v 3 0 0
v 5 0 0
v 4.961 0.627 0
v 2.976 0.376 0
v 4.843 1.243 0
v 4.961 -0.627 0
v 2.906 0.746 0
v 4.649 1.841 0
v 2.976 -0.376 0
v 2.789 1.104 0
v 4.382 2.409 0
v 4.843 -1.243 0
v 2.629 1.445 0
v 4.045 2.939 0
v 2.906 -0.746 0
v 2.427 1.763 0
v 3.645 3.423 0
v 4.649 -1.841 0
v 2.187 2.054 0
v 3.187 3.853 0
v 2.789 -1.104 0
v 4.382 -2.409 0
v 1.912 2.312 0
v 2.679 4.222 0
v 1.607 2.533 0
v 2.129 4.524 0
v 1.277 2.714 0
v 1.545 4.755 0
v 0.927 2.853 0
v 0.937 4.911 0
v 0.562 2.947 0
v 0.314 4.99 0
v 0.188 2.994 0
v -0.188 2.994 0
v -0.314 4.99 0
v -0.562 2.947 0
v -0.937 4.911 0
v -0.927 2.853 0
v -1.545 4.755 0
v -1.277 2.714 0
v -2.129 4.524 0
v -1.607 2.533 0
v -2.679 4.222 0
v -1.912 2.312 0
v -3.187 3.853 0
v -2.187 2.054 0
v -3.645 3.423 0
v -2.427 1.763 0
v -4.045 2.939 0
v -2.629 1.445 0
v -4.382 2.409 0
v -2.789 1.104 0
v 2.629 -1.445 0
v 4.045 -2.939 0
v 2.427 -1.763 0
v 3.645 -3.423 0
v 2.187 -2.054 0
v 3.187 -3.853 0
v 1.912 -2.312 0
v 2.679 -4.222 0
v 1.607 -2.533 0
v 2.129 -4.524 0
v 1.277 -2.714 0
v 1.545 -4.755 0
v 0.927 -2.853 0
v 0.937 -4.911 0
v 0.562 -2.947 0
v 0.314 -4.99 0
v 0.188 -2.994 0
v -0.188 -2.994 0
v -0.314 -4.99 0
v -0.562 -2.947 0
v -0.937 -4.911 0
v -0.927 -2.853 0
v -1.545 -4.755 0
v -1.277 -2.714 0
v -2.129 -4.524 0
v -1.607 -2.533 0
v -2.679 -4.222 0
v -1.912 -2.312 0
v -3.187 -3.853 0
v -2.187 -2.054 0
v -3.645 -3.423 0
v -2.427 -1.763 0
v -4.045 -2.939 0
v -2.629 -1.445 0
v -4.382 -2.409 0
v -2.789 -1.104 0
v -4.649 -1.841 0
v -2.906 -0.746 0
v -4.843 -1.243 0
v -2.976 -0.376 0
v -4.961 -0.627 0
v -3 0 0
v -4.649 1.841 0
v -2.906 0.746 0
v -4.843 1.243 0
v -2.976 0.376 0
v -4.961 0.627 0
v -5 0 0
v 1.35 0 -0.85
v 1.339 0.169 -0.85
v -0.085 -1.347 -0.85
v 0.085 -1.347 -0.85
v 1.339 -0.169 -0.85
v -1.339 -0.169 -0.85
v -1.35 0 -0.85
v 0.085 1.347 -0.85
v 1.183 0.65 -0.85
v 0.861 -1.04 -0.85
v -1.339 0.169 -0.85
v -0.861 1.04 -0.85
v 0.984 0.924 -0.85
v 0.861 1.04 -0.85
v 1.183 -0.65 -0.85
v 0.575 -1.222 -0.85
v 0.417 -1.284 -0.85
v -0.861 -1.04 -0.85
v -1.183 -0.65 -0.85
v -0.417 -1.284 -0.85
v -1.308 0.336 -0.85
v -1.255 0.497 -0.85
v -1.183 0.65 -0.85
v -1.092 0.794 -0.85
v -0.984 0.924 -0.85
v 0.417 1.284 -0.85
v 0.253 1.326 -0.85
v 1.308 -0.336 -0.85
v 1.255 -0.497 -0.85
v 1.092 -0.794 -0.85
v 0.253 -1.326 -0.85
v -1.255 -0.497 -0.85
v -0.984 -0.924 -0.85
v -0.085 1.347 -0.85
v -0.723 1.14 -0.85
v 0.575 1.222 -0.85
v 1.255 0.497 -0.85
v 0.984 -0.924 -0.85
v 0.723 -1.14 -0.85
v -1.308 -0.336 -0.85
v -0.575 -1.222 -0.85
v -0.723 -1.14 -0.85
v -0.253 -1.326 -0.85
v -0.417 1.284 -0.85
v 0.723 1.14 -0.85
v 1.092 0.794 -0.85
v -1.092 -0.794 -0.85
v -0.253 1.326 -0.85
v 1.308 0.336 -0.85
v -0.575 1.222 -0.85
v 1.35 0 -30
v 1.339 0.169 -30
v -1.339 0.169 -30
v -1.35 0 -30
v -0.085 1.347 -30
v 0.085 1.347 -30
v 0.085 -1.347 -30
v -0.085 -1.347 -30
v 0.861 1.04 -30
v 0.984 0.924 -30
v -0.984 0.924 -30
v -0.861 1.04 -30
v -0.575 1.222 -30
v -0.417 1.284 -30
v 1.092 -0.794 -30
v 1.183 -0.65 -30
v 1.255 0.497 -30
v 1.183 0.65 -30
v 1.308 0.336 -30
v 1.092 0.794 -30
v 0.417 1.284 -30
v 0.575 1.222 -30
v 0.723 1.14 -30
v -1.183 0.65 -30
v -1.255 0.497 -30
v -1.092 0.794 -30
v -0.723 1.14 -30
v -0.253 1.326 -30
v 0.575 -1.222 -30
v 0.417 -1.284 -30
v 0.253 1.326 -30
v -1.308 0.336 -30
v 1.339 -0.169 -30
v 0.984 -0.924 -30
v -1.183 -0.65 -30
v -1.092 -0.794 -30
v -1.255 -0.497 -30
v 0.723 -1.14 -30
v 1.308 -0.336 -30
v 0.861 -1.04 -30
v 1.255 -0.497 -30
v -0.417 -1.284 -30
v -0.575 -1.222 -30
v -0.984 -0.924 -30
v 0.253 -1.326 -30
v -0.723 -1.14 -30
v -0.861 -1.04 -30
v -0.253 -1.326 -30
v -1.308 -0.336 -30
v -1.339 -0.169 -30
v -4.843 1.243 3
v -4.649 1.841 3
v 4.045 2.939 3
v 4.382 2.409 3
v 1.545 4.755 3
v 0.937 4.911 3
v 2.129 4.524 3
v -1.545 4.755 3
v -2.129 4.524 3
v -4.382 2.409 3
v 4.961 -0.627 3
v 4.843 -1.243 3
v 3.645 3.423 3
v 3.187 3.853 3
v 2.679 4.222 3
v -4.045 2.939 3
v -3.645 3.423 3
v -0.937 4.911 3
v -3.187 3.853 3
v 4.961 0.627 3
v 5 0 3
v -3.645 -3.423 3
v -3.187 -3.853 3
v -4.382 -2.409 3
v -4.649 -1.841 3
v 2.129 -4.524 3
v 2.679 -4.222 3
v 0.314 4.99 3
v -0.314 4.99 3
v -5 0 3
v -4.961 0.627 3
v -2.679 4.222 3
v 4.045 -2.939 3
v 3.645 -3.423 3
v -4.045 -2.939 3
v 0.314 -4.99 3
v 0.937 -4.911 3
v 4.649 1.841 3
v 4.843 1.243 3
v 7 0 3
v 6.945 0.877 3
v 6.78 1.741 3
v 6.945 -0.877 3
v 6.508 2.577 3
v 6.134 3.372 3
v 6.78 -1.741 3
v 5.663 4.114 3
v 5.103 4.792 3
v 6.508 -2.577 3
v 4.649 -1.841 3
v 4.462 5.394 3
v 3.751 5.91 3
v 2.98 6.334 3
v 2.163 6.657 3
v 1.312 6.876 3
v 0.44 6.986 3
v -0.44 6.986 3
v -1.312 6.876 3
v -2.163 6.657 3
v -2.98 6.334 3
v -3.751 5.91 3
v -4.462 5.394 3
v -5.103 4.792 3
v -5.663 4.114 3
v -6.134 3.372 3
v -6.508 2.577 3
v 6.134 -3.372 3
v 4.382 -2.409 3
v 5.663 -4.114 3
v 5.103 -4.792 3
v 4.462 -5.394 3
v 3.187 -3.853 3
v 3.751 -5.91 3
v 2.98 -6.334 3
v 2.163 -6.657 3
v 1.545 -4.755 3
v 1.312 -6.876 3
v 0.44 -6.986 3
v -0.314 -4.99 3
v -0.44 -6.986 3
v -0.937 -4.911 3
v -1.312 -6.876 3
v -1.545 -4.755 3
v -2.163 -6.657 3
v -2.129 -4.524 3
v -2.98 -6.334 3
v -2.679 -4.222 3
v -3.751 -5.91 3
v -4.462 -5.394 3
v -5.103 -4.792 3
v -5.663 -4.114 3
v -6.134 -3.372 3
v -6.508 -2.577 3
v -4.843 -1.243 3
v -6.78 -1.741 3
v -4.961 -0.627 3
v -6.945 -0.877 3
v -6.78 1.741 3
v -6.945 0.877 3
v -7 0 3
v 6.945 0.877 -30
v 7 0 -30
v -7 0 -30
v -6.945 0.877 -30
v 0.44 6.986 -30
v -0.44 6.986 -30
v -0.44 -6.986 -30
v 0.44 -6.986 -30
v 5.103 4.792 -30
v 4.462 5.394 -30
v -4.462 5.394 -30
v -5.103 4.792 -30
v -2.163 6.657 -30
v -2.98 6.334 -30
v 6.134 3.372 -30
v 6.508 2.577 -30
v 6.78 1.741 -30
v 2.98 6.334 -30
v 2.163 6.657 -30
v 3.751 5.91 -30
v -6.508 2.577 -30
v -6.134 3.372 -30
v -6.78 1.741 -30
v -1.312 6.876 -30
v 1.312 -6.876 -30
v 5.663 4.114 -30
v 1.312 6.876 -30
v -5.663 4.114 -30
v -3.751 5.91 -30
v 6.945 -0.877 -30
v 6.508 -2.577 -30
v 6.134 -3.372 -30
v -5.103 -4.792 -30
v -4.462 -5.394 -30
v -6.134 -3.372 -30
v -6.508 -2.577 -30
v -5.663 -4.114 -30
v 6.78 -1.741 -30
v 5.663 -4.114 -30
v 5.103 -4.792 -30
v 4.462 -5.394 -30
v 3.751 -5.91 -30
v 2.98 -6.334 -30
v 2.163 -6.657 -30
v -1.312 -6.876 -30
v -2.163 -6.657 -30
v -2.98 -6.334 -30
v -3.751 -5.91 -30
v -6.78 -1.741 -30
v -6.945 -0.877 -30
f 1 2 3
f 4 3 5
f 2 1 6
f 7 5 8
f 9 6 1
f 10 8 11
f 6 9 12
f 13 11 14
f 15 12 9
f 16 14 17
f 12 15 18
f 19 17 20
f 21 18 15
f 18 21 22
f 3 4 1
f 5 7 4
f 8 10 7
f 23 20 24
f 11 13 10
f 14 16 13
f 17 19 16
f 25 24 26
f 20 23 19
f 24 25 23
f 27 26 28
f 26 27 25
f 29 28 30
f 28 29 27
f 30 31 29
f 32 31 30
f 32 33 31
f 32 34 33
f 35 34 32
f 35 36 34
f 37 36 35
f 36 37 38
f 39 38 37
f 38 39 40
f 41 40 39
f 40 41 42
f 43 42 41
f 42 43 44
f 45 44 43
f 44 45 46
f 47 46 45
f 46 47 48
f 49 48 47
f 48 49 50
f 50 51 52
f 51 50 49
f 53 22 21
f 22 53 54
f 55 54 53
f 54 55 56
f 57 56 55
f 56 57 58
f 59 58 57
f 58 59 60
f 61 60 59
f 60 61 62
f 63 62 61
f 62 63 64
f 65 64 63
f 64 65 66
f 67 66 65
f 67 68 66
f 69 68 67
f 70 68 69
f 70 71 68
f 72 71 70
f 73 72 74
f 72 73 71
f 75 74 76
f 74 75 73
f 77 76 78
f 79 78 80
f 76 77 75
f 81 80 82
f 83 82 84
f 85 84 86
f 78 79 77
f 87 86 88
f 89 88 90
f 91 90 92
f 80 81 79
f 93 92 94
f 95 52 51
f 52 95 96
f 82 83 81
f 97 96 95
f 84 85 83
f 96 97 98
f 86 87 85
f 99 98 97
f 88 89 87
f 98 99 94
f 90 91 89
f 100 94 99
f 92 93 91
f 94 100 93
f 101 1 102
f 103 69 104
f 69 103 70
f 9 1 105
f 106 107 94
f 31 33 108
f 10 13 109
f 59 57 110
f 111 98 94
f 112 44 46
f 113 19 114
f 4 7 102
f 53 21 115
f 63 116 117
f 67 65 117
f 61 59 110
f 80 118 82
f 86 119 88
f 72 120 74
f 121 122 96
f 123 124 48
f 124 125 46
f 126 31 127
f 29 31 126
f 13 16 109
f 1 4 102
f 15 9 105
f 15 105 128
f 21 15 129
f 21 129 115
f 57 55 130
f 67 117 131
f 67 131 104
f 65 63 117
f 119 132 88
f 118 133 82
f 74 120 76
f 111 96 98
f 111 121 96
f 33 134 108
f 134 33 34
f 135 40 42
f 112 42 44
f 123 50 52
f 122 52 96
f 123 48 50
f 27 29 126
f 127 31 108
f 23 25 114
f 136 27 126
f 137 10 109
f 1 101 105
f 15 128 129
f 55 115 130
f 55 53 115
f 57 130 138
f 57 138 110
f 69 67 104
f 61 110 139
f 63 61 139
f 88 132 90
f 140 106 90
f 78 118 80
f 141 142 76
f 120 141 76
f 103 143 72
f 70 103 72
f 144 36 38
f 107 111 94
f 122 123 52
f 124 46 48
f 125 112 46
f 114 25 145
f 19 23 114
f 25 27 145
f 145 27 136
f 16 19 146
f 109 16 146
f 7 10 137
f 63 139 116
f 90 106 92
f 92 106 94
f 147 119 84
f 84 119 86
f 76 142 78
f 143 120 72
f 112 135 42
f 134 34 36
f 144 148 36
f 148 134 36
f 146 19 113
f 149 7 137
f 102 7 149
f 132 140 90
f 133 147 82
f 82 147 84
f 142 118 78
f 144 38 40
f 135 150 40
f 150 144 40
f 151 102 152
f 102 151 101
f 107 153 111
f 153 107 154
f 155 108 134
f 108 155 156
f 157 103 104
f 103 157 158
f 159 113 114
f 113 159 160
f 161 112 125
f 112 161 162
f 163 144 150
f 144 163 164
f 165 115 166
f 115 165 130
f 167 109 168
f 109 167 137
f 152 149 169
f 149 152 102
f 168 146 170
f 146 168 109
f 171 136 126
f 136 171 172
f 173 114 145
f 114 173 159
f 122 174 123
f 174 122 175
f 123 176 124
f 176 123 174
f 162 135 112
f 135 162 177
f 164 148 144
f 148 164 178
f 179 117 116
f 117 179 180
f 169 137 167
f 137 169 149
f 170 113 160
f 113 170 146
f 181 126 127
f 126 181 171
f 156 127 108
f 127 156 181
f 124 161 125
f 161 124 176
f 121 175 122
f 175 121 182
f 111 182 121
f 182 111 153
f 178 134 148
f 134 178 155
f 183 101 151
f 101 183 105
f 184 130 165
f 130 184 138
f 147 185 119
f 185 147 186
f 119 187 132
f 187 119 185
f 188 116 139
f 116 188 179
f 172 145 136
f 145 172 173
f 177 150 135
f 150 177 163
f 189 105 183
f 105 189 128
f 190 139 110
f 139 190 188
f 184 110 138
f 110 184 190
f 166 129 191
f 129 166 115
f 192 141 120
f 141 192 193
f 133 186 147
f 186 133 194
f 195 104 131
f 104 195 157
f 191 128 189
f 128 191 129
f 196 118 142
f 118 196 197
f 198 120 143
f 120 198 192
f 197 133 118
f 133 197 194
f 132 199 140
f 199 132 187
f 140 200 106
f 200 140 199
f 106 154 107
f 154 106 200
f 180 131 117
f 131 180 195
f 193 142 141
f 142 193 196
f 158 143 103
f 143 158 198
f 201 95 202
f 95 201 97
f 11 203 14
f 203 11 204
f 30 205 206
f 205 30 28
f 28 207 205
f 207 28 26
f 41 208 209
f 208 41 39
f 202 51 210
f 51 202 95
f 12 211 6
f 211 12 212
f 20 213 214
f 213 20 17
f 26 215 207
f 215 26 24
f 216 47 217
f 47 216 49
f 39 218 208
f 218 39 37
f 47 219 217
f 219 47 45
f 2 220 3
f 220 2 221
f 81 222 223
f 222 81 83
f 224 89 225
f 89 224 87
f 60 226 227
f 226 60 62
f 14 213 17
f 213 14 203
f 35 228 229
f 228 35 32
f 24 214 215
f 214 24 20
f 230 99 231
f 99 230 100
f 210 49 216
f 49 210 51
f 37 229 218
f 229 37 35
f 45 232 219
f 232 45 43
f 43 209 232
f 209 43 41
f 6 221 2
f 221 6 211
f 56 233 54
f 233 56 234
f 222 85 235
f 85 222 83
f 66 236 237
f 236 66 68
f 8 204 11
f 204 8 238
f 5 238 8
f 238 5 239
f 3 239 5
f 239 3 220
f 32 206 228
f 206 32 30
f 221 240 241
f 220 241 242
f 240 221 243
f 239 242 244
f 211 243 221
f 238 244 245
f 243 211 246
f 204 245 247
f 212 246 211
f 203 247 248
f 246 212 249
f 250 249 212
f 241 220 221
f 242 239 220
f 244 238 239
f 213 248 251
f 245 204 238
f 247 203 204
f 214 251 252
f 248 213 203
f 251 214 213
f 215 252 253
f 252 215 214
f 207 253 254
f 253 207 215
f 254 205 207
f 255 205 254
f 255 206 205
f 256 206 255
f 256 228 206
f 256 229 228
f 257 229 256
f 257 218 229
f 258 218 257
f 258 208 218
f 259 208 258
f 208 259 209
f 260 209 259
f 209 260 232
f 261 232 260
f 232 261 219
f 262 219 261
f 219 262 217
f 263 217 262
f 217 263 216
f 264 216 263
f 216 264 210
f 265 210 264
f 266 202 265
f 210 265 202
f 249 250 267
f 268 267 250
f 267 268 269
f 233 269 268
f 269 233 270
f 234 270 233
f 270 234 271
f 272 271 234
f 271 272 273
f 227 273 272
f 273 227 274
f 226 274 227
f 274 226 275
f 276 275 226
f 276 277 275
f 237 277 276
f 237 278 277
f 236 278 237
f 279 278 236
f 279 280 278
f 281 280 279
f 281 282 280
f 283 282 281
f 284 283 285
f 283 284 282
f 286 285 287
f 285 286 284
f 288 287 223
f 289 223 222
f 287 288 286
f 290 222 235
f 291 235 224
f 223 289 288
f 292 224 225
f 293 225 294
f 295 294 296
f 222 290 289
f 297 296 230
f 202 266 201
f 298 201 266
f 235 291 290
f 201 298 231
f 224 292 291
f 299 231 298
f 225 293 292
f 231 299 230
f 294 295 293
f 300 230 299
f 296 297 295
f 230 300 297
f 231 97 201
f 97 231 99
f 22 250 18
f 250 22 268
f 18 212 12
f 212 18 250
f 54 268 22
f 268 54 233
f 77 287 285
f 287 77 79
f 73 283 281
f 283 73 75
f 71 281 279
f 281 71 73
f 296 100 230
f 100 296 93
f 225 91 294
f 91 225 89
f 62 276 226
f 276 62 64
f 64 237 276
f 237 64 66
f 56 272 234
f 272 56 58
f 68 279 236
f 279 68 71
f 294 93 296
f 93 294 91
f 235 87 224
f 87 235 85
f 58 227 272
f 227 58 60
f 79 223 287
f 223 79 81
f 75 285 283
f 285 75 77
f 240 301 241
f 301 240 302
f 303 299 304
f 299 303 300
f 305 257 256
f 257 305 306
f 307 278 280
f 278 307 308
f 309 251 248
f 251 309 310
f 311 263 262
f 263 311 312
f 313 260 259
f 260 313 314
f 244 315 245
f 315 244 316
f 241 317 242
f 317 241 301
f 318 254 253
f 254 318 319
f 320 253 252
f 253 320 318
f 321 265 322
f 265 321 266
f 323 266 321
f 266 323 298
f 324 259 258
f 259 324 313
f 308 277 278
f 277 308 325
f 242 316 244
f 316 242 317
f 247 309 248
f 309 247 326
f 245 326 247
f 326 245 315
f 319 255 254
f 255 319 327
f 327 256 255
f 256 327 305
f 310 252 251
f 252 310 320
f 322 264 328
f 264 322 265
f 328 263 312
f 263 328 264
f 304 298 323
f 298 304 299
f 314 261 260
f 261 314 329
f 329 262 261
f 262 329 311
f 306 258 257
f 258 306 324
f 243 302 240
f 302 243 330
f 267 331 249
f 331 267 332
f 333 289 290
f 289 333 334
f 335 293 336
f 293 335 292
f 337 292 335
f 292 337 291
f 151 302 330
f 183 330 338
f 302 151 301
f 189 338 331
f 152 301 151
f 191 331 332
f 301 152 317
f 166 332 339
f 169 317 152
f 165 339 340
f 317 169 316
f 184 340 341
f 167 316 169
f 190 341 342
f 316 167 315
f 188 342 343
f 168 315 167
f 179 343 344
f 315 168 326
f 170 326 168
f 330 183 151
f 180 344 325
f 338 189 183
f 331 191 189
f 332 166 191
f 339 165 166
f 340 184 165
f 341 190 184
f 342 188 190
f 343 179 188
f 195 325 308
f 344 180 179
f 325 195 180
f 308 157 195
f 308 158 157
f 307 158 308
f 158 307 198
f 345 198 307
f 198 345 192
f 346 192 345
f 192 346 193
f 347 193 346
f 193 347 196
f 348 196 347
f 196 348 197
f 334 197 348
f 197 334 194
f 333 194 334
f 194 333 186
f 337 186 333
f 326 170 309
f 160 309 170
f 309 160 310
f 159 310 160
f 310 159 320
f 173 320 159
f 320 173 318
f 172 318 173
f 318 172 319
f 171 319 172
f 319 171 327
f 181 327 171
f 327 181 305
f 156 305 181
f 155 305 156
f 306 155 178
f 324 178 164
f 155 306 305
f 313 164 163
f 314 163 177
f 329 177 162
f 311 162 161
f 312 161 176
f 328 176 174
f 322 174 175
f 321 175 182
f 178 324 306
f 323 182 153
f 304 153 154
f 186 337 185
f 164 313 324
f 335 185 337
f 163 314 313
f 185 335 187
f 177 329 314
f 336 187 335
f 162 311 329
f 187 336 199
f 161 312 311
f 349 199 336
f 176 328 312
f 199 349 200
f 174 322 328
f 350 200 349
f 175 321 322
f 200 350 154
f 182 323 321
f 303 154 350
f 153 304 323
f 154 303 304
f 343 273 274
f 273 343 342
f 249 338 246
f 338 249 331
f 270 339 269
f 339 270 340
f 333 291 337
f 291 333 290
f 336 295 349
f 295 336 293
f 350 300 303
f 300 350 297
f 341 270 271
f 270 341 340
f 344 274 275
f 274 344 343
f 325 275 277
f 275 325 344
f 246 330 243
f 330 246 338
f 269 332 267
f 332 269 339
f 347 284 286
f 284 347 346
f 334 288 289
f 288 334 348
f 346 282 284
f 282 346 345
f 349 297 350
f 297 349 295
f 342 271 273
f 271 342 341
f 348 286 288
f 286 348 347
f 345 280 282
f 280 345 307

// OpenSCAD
$fn = 50;


difference() {
	union() {
		translate(v = [0, 0, -30.0000000000]) {
			cylinder(h = 33, r = 7.0000000000);
		}
	}
	union() {
		translate(v = [0, 0, 0]) {
			rotate(a = [0, 0, 0]) {
				difference() {
					union() {
						translate(v = [0, 0, -33.0000000000]) {
							cylinder(h = 33, r = 1.0000000000);
						}
						translate(v = [0, 0, -0.8500000000]) {
							cylinder(h = 0.8500000000, r1 = 1.3500000000, r2 = 3.0000000000);
						}
						translate(v = [0, 0, -33.0000000000]) {
							cylinder(h = 33, r = 1.3500000000);
						}
						translate(v = [0, 0, -33.0000000000]) {
							cylinder(h = 33, r = 1.0000000000);
						}
					}
					union();
				}
			}
		}
		#cylinder(h = 3, r = 5.0000000000);
	}
}
